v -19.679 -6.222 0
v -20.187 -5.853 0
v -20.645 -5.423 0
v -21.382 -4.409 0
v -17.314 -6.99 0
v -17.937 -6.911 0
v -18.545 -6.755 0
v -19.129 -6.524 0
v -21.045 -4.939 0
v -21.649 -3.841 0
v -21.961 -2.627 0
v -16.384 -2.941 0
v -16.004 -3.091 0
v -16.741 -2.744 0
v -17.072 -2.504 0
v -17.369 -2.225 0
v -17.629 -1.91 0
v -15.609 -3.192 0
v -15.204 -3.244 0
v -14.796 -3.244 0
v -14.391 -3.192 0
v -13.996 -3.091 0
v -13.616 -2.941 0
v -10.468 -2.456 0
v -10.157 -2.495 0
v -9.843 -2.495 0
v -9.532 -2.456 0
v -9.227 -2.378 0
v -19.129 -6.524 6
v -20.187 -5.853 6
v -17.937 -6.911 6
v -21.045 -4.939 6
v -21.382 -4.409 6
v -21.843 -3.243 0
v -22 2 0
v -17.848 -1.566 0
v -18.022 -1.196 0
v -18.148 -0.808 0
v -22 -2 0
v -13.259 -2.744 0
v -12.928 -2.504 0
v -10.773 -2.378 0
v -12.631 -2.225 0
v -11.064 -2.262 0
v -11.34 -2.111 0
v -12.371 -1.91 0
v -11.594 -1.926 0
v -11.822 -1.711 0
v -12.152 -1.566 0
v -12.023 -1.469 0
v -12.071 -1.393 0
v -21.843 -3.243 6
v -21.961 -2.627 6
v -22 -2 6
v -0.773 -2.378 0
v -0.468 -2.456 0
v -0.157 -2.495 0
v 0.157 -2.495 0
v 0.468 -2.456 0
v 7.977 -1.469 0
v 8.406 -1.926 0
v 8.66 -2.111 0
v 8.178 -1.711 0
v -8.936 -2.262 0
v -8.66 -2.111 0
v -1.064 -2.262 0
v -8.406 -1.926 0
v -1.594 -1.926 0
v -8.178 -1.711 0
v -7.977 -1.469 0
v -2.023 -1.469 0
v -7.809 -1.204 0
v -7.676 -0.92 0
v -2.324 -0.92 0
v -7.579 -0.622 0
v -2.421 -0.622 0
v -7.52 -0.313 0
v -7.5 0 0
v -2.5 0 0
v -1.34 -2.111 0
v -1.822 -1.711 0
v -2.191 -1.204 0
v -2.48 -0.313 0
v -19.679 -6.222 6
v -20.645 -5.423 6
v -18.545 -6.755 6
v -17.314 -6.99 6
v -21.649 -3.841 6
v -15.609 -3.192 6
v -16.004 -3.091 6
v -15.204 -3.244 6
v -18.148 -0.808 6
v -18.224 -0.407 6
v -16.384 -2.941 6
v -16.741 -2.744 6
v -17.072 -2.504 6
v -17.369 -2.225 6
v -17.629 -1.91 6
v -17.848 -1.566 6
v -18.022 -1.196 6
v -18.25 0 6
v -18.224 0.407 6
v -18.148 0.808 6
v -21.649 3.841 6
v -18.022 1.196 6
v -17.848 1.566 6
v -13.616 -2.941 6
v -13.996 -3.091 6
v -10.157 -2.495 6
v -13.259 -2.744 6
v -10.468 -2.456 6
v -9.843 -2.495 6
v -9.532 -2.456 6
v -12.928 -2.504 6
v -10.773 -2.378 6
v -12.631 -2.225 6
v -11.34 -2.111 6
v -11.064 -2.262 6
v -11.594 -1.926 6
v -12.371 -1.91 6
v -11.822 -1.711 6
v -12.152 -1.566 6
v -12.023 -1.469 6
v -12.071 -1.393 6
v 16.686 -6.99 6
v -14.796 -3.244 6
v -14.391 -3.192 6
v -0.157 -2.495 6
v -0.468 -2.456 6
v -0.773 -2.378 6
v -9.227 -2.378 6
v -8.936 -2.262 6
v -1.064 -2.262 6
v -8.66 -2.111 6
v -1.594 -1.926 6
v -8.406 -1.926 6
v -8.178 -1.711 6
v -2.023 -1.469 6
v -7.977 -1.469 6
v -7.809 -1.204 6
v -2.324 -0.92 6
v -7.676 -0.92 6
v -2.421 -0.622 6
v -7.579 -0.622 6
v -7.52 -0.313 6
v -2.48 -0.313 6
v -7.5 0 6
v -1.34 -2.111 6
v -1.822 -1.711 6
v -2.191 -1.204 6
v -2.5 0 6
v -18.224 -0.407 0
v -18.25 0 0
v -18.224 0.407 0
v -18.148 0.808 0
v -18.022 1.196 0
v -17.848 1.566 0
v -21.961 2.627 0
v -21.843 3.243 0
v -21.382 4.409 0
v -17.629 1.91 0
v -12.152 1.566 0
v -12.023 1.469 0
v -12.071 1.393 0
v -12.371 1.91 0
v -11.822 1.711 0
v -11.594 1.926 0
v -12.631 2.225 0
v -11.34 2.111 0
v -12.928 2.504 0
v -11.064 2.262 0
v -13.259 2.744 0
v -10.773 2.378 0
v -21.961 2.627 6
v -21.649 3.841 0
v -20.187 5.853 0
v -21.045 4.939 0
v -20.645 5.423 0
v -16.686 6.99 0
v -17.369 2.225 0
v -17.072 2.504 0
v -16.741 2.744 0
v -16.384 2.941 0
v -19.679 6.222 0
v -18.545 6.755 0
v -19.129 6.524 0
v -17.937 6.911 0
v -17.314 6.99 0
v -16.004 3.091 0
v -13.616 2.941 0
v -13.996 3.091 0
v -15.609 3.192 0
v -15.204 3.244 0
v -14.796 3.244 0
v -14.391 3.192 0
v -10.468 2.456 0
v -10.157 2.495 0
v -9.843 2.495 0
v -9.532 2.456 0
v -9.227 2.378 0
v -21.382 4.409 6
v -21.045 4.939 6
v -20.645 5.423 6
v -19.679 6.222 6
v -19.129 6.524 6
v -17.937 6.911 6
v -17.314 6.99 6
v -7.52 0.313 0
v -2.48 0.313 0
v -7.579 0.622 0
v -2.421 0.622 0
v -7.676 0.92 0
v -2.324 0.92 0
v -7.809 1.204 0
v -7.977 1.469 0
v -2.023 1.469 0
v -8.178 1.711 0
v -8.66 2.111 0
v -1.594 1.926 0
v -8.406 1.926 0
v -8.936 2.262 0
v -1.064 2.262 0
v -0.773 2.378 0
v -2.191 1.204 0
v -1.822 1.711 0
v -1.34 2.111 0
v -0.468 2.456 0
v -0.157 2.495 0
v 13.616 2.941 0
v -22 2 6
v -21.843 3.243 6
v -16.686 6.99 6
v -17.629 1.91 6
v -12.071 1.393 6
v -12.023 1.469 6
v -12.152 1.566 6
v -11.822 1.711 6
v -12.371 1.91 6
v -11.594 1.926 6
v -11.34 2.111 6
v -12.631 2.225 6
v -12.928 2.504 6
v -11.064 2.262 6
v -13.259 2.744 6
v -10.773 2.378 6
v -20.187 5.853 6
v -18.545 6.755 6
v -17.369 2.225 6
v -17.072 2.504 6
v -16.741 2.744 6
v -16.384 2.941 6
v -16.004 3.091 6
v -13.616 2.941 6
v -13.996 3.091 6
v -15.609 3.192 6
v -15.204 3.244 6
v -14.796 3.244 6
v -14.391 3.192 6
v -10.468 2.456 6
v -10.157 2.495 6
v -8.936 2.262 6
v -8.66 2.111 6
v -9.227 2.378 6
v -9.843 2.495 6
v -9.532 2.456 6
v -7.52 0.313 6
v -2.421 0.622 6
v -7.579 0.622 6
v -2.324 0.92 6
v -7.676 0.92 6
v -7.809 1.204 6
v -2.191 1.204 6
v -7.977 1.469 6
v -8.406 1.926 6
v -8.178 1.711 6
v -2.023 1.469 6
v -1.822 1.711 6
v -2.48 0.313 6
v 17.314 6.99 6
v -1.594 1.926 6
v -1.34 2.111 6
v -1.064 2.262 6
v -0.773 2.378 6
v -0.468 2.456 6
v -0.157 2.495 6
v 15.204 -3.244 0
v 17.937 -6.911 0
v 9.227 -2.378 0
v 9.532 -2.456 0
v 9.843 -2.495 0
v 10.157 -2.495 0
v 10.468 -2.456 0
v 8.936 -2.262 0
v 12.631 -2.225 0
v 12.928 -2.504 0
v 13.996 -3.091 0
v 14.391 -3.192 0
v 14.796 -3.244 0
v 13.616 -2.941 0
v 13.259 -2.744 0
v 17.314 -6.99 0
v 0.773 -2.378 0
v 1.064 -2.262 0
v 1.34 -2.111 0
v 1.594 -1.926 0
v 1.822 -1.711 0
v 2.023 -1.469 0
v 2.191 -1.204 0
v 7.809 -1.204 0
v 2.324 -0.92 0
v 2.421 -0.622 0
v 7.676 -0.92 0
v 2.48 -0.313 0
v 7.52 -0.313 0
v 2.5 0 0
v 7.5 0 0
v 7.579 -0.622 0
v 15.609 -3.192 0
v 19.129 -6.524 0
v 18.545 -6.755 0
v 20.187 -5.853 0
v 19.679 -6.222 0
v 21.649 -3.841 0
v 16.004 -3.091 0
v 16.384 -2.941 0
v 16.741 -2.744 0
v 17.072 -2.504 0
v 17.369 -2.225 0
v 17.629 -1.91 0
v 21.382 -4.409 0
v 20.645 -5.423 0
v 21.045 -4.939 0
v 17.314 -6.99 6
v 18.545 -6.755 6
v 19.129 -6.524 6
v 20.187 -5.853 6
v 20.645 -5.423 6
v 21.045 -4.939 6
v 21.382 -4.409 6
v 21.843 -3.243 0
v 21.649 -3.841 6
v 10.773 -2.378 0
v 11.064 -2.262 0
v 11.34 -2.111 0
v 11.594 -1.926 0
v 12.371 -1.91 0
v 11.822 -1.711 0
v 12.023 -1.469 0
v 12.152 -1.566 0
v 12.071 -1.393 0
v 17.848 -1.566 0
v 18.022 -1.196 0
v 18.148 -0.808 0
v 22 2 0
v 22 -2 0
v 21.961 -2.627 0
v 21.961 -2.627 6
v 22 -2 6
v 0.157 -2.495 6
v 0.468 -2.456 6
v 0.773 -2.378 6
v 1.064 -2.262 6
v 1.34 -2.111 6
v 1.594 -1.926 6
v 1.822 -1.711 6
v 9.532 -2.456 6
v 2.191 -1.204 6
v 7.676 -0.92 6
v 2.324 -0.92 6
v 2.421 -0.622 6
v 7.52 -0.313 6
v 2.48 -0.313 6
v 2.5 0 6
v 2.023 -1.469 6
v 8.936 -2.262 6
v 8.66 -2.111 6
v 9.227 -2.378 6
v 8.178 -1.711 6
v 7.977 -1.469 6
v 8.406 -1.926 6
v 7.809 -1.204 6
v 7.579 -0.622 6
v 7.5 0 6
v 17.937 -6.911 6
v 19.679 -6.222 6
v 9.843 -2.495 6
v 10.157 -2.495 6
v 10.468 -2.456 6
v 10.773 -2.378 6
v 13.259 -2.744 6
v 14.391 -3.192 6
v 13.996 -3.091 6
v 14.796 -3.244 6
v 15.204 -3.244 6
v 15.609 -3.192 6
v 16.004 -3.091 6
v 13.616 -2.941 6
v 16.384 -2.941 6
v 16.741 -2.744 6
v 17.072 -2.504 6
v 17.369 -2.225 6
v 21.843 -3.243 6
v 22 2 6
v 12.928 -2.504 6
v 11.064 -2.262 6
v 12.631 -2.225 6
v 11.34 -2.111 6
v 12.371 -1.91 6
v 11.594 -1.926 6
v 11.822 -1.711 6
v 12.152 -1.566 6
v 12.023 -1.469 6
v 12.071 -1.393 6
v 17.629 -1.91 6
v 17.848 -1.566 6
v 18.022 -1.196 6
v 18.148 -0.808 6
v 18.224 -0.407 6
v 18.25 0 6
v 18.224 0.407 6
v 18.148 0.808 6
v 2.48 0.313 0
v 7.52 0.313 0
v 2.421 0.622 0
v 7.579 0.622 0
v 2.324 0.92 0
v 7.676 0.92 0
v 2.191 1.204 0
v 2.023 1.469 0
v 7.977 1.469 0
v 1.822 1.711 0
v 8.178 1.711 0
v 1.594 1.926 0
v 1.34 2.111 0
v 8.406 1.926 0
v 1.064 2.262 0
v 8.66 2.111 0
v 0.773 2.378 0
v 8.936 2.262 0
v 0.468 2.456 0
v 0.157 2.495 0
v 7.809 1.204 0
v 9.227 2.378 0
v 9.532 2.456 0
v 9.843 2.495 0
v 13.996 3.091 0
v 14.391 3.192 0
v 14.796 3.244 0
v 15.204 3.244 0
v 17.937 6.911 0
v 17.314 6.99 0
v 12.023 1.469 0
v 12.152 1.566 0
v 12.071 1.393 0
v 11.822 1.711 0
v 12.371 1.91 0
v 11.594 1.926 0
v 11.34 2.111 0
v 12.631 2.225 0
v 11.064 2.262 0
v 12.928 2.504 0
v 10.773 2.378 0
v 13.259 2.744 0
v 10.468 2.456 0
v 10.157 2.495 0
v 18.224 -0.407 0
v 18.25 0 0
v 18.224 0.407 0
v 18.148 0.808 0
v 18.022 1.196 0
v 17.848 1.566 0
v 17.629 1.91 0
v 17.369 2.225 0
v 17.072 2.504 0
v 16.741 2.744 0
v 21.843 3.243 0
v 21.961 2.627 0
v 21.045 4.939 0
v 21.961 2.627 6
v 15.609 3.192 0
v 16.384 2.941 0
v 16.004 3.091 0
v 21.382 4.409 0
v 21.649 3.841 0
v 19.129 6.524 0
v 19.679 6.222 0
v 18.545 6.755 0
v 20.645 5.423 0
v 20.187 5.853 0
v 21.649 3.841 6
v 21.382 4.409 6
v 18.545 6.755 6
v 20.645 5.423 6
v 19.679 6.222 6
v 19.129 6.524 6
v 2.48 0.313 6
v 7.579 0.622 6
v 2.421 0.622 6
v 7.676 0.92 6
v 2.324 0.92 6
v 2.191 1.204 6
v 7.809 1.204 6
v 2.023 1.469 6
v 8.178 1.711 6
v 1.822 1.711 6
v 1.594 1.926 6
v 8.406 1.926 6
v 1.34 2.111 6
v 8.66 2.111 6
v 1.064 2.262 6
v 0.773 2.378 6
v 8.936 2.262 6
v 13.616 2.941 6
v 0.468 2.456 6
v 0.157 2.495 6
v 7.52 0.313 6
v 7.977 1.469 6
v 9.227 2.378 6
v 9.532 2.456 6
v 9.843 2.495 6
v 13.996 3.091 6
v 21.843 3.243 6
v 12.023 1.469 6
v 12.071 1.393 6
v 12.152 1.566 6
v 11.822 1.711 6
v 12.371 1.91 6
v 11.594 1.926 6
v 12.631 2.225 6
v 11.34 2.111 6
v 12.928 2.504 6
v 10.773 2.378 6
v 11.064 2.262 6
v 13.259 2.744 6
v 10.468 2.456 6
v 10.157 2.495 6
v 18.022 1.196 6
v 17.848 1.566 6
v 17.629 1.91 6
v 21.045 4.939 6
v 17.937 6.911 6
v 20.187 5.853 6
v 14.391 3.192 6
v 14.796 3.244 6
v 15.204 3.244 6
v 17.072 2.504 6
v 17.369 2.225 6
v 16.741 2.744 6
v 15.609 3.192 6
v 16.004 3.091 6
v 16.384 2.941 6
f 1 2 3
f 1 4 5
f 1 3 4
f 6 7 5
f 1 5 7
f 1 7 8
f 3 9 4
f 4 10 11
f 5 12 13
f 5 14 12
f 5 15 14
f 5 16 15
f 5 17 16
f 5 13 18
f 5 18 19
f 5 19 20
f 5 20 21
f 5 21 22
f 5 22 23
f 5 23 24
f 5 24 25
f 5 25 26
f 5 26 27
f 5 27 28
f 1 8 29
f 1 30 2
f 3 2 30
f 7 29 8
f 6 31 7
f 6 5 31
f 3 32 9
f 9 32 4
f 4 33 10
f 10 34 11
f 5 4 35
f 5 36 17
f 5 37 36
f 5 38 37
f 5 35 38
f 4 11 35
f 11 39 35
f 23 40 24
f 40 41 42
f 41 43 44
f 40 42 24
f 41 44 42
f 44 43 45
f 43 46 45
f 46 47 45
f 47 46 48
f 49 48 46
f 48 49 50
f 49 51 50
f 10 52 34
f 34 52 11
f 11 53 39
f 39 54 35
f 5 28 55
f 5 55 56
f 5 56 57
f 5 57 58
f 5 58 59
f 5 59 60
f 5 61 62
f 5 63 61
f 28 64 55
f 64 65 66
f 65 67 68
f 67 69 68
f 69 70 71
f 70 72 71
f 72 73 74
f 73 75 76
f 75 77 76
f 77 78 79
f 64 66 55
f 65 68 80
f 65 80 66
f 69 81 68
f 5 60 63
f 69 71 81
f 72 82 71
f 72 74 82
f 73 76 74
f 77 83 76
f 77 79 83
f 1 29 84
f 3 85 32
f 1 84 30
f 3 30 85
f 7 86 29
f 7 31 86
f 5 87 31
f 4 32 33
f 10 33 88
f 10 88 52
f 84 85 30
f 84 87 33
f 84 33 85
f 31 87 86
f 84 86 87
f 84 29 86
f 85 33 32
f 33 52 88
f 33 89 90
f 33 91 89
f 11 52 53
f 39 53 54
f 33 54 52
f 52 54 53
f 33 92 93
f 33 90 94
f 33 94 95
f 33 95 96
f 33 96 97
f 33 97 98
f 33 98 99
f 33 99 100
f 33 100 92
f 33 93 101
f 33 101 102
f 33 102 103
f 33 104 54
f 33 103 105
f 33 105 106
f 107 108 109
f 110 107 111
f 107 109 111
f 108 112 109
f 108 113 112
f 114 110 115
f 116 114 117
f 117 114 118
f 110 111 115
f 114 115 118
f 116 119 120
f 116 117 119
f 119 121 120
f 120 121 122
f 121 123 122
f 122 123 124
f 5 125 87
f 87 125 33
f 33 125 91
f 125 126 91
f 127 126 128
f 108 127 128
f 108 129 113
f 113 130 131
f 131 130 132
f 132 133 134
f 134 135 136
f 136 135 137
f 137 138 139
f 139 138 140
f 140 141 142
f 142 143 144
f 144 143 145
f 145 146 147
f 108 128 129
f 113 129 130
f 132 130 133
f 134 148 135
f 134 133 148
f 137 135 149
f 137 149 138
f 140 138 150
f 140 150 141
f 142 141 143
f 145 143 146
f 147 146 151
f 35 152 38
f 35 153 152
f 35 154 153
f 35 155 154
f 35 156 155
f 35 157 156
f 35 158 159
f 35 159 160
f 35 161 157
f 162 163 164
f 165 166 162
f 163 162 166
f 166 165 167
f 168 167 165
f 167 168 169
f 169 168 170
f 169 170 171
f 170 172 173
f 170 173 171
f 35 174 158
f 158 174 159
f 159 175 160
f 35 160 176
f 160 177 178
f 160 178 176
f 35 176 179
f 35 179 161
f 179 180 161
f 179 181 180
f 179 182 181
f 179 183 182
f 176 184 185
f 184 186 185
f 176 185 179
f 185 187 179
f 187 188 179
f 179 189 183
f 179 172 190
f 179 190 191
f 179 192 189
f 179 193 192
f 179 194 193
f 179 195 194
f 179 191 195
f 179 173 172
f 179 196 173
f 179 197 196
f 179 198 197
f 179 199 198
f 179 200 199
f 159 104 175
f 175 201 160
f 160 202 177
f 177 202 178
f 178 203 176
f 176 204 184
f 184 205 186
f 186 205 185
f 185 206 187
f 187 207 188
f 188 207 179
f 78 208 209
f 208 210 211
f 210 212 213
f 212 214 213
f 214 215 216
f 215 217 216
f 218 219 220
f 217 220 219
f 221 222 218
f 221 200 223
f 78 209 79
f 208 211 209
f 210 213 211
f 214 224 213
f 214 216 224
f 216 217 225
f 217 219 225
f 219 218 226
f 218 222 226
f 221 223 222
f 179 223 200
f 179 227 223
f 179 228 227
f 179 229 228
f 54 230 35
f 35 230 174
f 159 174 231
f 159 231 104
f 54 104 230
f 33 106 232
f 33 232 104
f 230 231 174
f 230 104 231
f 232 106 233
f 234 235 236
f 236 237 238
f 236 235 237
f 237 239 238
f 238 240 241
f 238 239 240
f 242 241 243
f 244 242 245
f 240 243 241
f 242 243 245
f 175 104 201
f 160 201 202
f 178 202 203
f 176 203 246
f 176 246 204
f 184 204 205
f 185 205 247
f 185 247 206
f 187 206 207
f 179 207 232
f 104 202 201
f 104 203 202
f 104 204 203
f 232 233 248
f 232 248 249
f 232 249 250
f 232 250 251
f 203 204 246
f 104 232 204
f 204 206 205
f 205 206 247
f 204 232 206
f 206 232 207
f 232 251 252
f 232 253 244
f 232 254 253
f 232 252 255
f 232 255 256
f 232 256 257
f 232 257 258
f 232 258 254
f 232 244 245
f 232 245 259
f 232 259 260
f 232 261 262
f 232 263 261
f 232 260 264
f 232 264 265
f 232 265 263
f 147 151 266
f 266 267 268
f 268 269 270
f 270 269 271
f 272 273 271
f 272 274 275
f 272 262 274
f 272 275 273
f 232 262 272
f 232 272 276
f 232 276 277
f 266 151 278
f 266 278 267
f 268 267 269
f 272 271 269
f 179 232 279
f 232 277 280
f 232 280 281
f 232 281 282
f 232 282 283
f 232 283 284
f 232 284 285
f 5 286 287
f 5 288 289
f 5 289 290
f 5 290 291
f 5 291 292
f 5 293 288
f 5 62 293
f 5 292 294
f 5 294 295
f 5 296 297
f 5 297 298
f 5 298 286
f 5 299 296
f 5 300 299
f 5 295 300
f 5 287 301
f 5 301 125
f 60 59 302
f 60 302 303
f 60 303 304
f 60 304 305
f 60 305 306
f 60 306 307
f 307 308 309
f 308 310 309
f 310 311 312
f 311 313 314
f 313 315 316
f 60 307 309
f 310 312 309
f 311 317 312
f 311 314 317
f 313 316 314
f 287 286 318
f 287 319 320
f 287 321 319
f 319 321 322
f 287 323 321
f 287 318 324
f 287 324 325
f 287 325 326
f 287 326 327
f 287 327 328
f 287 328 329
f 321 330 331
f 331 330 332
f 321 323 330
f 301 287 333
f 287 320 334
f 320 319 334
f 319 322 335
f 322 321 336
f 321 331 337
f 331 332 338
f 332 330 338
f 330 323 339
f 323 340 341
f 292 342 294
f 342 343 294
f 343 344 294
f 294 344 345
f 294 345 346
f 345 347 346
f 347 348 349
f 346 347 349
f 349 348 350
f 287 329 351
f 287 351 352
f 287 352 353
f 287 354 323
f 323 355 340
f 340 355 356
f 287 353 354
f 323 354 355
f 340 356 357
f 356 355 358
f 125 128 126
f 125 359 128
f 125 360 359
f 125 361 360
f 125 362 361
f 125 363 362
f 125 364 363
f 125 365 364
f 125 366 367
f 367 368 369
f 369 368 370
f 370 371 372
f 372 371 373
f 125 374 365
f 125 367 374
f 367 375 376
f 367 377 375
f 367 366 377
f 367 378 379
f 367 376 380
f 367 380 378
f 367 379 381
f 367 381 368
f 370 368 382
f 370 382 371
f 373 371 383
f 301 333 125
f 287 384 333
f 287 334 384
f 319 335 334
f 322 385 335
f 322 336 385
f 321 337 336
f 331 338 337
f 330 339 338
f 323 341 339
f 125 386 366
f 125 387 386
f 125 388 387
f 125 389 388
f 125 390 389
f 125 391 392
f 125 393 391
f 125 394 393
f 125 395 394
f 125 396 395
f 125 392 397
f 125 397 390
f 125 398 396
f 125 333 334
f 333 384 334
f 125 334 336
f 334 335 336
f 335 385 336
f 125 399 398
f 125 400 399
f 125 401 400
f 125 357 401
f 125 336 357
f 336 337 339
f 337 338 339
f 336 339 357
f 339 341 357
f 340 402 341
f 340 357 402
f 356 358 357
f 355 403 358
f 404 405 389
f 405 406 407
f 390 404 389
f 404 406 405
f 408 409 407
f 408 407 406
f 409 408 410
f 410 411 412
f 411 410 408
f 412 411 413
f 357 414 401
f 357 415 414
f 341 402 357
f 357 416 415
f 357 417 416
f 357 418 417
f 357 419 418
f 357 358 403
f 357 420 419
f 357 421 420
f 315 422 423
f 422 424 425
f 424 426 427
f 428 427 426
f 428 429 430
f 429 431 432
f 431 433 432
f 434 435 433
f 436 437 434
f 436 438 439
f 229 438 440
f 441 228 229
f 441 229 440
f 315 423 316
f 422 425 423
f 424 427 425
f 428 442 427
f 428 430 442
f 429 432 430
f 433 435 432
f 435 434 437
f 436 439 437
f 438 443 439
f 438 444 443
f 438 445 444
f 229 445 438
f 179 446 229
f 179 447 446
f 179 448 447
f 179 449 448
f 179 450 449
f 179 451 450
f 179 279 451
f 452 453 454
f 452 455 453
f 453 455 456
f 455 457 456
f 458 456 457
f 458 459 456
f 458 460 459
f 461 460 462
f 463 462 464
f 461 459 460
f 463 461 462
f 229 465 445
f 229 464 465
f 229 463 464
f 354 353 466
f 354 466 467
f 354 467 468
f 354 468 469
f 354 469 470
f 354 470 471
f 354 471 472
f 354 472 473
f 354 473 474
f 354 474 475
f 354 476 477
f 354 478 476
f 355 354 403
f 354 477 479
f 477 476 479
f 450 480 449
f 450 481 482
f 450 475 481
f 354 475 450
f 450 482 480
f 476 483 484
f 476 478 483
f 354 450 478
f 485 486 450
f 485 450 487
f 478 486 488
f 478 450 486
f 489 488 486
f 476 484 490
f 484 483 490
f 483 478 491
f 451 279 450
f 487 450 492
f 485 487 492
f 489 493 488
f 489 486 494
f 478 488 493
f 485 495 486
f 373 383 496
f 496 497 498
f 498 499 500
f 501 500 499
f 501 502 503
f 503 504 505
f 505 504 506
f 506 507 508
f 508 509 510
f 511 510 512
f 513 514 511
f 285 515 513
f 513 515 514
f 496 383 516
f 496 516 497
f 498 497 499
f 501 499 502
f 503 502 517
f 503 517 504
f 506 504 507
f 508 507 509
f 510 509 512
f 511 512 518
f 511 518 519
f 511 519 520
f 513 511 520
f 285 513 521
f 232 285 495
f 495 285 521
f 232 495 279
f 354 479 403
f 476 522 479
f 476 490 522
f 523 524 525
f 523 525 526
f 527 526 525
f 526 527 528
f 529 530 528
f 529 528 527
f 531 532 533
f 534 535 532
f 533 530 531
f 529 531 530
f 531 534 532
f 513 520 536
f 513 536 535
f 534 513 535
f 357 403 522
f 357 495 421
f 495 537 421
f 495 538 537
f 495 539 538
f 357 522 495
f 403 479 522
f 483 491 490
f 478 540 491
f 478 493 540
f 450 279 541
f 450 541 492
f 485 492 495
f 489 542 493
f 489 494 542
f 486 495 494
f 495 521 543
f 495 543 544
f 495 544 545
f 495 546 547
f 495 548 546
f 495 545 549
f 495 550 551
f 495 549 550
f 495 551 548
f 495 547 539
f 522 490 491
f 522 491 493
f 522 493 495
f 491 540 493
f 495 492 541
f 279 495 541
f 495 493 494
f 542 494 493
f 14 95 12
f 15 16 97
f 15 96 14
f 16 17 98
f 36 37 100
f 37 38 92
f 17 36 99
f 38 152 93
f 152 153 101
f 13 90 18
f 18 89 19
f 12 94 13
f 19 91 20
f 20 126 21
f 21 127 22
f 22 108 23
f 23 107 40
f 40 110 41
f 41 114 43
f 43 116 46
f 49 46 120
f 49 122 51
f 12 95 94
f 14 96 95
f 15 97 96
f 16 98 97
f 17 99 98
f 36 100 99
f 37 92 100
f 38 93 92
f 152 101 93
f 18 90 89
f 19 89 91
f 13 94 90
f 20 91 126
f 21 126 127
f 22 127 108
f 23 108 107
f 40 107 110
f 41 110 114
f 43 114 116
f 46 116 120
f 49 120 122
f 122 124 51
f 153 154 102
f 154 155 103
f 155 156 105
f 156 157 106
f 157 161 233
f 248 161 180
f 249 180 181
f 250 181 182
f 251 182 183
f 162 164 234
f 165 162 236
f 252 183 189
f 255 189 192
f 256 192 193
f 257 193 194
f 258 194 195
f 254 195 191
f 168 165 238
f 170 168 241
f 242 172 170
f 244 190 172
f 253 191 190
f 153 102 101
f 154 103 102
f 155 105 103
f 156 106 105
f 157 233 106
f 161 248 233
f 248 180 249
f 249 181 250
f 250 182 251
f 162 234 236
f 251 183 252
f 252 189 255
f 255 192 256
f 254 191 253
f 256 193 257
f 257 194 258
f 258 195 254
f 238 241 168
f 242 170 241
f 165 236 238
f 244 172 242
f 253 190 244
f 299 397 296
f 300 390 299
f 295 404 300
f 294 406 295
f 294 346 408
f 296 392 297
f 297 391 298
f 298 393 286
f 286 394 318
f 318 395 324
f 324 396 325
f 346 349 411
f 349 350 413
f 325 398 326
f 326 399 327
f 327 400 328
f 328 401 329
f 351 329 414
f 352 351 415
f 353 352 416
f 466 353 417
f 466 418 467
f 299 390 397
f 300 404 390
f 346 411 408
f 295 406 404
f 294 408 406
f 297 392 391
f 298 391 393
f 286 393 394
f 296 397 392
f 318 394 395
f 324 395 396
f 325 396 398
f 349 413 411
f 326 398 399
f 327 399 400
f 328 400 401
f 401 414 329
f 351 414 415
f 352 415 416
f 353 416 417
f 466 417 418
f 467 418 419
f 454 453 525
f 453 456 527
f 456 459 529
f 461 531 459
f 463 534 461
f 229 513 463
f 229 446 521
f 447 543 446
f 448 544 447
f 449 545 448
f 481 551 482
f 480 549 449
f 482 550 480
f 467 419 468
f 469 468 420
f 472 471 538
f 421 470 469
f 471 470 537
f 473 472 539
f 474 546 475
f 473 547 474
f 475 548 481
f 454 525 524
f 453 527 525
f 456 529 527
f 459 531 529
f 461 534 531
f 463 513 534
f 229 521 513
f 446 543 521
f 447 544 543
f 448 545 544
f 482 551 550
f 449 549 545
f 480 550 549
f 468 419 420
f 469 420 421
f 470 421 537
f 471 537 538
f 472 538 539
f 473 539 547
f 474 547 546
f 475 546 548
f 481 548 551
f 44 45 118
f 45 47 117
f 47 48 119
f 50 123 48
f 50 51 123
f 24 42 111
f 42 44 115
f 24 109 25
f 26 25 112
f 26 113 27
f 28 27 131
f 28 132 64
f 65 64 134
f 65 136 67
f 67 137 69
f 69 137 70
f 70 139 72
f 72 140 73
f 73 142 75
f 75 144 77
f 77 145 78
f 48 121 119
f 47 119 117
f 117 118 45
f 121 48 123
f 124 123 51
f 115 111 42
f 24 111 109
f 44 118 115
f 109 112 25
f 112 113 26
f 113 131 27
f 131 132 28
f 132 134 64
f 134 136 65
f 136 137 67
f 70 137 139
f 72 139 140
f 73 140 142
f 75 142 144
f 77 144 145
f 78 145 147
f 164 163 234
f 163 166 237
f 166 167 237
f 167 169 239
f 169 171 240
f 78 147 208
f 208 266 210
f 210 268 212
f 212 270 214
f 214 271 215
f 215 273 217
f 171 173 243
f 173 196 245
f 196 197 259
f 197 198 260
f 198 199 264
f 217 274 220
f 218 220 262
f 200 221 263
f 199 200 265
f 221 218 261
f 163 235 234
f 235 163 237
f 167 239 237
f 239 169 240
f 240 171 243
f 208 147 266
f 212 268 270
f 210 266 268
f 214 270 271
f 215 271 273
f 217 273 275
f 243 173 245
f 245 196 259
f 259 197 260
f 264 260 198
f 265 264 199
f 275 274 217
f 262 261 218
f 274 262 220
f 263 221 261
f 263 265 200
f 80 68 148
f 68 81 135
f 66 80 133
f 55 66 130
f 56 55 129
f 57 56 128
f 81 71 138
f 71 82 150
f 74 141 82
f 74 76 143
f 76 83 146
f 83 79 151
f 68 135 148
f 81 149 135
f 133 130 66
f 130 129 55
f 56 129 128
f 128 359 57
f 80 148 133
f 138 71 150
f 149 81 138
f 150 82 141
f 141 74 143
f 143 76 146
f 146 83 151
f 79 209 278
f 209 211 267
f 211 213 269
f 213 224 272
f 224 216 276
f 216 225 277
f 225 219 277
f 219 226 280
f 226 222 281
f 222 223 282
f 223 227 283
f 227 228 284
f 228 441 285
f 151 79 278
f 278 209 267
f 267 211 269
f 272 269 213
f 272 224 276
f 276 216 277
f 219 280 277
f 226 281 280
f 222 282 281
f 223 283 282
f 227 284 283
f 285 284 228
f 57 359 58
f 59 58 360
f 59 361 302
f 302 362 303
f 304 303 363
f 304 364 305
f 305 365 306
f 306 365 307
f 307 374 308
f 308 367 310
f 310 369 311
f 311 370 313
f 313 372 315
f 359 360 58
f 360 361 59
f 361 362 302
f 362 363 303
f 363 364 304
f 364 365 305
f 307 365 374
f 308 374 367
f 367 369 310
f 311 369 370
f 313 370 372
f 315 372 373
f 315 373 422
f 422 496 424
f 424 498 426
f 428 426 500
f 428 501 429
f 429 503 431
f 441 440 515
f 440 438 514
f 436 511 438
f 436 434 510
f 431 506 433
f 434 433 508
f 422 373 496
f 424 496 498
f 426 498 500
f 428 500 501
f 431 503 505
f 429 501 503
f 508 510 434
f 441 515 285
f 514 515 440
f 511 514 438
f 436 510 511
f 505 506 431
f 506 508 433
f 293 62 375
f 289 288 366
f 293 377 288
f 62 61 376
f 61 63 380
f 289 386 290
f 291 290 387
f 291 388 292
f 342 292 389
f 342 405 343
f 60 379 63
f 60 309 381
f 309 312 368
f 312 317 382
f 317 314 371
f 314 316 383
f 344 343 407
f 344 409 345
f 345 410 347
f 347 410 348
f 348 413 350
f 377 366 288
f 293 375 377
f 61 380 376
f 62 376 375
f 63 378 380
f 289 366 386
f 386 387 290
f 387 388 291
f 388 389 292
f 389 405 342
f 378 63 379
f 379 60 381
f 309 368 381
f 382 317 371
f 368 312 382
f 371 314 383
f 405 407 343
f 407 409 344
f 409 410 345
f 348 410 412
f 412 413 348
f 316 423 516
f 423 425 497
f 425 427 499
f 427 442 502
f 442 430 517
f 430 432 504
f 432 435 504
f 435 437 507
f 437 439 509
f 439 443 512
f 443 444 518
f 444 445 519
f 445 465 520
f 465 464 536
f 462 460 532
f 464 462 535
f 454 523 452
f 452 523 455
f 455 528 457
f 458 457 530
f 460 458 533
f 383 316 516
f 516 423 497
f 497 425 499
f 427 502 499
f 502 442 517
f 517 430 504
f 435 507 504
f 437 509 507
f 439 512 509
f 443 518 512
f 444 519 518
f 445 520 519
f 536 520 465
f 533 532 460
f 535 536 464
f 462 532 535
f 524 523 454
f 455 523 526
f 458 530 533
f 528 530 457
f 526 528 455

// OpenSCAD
$fn = 50;

difference() {
	union() {
		hull() {
			translate(v = [-17.0, 2.0, 0]) {
				cylinder(h = 6, r = 5);
			}
			translate(v = [17.0, 2.0, 0]) {
				cylinder(h = 6, r = 5);
			}
			translate(v = [-17.0, -2.0, 0]) {
				cylinder(h = 6, r = 5);
			}
			translate(v = [17.0, -2.0, 0]) {
				cylinder(h = 6, r = 5);
			}
		}
	}
	union() {
		translate(v = [-15.0, 0.0, -100.0]) {
			cylinder(h = 200, r = 3.25);
		}
		translate(v = [15.0, 0.0, -100.0]) {
			cylinder(h = 200, r = 3.25);
		}
		translate(v = [-15.0, 0.0, -100.0]) {
			cylinder(h = 200, r = 1.8);
		}
		translate(v = [15.0, 0.0, -100.0]) {
			cylinder(h = 200, r = 1.8);
		}
		translate(v = [-10.0, 0, 0.0]) {
			cylinder(h = 6, r = 2.5);
		}
		cylinder(h = 6, r = 2.5);
		translate(v = [10.0, 0, 0.0]) {
			cylinder(h = 6, r = 2.5);
		}
	}
}
